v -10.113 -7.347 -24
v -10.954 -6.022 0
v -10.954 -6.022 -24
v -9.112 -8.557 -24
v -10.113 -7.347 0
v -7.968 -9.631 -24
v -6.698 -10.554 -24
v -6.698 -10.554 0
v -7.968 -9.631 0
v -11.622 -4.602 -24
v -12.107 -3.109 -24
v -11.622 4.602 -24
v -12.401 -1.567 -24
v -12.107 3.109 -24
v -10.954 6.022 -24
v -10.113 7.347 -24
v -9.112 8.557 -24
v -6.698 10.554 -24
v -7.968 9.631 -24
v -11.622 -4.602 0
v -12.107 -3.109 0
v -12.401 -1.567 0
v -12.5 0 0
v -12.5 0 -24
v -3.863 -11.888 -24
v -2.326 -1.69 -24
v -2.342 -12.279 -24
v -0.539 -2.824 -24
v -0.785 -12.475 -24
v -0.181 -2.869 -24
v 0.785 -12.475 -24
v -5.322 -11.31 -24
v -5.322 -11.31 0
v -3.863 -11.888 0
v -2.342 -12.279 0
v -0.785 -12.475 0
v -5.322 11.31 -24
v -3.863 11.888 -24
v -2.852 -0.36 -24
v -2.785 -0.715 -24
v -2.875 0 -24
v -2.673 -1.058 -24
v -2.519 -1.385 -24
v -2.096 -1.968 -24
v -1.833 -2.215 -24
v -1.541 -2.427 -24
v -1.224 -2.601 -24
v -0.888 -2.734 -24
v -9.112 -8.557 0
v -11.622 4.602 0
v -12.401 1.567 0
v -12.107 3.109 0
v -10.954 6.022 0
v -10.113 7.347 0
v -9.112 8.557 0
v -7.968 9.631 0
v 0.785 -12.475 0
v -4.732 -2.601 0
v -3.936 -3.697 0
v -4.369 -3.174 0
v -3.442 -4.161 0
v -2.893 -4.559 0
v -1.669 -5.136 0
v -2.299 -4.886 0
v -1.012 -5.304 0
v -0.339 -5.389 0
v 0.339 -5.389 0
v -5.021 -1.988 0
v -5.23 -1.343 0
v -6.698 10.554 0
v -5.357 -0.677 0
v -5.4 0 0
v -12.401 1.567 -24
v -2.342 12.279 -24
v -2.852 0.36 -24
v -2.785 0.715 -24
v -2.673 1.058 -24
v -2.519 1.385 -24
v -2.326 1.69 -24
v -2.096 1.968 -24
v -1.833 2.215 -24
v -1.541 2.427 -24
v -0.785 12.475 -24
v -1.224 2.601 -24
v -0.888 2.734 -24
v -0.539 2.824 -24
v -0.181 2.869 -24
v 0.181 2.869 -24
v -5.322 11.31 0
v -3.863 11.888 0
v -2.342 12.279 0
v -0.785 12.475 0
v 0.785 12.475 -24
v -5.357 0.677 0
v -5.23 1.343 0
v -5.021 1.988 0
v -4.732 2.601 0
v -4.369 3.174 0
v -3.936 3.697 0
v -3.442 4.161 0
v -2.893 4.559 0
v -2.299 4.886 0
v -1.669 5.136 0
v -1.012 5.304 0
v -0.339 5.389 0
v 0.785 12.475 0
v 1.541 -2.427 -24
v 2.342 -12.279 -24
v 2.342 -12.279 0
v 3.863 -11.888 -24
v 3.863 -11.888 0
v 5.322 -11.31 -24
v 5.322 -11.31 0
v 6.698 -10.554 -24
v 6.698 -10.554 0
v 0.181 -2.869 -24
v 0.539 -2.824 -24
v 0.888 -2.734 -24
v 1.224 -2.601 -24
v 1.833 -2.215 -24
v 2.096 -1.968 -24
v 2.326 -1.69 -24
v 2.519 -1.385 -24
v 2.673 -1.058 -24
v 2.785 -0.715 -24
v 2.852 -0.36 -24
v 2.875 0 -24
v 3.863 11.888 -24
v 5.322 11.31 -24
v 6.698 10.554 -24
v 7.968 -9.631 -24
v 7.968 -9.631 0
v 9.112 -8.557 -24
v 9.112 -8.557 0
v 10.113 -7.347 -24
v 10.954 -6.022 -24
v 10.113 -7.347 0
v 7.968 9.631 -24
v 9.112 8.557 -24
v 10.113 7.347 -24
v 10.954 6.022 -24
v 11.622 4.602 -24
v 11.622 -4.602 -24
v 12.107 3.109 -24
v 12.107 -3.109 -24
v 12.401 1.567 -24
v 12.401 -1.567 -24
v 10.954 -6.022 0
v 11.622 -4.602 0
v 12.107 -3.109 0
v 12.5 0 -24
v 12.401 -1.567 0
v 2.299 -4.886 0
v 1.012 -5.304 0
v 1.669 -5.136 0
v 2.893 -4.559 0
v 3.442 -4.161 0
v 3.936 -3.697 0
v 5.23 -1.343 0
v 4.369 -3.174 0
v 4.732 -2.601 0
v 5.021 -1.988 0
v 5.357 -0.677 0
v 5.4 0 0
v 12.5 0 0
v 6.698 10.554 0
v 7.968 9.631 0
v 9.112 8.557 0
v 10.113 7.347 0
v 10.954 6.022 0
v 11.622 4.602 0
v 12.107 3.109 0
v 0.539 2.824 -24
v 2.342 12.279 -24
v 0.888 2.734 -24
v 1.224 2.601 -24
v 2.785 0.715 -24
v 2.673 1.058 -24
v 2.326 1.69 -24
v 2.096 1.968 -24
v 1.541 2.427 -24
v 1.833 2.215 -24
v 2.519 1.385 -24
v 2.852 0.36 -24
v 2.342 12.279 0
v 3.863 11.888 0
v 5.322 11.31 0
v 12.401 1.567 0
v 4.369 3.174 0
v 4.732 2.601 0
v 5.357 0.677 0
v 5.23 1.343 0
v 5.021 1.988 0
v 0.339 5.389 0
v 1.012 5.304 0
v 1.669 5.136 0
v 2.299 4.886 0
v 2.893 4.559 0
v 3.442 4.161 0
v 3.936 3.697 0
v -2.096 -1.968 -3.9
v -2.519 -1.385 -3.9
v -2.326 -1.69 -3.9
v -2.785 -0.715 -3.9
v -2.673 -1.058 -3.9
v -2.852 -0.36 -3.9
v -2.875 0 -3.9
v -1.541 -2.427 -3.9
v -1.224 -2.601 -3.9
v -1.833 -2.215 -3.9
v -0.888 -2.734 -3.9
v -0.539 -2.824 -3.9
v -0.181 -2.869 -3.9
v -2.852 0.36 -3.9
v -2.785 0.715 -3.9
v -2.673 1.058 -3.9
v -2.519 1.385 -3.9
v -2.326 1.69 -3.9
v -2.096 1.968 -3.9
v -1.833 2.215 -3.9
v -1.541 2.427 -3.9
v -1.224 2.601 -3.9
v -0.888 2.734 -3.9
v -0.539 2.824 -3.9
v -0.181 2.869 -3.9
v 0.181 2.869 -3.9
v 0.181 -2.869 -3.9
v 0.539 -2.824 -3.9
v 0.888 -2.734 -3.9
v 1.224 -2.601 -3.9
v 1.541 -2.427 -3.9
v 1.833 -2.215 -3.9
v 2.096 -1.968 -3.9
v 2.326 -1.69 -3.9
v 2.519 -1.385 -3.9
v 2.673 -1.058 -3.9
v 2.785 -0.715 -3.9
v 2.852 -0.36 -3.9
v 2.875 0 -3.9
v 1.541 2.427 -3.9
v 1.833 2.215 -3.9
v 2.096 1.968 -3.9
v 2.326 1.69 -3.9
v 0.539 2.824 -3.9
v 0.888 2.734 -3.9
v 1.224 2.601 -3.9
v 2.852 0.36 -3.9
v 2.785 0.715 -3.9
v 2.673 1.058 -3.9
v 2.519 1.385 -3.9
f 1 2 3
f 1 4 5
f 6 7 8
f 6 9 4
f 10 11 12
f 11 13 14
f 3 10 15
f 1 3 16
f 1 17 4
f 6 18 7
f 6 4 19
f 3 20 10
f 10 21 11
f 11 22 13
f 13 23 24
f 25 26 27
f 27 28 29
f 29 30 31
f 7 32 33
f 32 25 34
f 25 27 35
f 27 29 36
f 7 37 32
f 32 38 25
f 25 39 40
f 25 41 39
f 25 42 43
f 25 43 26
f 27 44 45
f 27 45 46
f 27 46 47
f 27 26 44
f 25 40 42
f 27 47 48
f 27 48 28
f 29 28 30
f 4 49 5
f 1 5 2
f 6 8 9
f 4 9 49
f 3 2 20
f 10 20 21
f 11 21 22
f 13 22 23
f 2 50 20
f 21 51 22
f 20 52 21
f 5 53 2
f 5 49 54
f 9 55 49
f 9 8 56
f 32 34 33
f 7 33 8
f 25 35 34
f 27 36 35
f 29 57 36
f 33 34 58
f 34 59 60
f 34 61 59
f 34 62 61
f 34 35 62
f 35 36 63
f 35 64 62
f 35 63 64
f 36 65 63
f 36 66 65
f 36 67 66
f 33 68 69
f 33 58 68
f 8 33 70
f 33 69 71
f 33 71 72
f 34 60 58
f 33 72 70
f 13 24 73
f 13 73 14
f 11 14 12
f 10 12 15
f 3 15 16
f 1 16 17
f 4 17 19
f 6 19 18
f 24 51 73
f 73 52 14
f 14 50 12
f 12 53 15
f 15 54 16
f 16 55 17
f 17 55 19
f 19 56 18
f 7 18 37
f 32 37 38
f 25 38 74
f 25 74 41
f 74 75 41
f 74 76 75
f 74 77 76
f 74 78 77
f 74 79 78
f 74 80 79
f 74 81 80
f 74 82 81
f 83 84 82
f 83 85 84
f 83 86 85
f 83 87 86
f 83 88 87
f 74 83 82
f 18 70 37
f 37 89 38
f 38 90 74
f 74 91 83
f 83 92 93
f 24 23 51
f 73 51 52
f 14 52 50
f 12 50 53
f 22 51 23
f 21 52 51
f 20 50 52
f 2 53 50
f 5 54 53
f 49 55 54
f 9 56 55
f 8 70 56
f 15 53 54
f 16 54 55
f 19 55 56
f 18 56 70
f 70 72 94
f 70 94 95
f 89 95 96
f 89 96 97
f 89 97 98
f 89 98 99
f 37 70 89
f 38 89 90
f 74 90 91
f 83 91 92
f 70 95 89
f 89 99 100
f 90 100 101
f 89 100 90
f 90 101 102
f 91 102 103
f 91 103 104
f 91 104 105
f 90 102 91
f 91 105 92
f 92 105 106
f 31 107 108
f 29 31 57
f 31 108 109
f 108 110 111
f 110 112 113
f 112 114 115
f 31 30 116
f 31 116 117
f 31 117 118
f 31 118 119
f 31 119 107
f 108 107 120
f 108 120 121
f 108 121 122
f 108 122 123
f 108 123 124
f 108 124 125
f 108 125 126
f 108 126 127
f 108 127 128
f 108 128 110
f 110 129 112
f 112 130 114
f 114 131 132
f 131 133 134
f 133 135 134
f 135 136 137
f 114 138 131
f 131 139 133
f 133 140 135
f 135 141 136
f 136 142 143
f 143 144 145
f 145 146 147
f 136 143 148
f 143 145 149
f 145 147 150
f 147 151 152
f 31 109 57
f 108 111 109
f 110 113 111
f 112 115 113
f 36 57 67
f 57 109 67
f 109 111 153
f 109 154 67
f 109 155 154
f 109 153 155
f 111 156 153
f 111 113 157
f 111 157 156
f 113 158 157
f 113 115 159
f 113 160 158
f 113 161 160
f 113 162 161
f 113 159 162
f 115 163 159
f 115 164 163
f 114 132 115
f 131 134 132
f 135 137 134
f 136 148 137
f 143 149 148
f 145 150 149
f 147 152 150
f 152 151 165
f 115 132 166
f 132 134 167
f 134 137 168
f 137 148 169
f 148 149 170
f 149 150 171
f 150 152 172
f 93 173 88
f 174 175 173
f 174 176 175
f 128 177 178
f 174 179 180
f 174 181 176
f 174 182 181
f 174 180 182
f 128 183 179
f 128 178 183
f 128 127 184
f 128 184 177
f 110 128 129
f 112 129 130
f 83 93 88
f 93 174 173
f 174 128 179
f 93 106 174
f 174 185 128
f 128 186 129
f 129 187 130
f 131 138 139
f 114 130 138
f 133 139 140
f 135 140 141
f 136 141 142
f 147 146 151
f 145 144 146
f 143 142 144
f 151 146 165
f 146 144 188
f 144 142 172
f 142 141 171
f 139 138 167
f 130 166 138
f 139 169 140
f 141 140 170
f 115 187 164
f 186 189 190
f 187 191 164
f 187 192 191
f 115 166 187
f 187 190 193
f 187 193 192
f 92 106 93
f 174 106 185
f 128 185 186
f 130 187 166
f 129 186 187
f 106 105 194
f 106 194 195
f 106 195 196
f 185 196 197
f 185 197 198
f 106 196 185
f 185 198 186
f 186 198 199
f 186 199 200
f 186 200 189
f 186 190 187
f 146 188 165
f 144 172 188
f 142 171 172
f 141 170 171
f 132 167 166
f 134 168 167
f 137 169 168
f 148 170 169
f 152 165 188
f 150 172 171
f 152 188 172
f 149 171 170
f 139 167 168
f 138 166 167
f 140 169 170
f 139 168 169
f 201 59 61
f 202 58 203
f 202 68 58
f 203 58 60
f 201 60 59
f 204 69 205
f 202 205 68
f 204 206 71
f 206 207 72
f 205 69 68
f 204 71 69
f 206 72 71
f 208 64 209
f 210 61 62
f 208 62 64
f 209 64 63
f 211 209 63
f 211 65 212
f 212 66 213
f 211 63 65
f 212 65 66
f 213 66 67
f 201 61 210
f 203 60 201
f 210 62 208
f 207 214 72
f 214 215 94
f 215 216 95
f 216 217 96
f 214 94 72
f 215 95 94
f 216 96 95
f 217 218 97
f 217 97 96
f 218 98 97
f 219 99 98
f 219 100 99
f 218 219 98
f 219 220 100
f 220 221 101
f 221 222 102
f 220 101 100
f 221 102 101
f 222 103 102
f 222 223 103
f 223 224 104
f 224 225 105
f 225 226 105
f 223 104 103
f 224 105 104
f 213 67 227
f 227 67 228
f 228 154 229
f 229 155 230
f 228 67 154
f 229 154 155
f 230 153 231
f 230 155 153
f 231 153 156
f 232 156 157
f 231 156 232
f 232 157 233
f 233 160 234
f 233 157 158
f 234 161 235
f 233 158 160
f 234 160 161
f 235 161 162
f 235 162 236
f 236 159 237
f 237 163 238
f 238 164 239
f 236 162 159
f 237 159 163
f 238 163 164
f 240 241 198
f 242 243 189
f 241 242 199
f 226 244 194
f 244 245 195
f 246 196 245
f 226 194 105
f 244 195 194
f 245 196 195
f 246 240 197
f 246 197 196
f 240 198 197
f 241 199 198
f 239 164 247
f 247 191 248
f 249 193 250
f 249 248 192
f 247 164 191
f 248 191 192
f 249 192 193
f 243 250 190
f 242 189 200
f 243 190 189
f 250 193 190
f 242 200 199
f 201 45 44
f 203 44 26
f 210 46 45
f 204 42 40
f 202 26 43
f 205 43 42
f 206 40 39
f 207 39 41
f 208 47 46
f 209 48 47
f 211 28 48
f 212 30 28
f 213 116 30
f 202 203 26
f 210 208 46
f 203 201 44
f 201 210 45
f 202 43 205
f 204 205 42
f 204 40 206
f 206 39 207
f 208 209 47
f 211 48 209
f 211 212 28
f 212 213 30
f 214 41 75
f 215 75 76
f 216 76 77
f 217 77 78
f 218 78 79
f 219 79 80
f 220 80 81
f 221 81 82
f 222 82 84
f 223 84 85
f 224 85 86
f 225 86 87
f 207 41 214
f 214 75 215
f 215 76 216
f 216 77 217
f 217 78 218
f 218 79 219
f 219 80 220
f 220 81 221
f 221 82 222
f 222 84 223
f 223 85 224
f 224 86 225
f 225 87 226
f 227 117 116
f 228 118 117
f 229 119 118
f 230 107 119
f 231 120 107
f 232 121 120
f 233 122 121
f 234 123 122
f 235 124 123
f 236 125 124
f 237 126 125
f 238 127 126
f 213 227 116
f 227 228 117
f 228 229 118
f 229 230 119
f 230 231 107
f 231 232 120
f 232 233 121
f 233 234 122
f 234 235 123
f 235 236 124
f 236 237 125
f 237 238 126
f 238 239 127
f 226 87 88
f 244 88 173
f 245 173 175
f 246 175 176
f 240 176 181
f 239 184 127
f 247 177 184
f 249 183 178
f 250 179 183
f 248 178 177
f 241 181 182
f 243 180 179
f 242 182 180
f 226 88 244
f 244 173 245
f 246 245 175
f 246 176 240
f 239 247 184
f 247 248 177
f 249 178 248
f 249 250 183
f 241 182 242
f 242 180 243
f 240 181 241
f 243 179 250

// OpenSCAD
$fn = 50;

difference() {
	union() {
		translate(v = [0, 0, -24.0]) {
			cylinder(h = 24, r = 12.5);
		}
	}
	union() {
		translate(v = [0, 0, 0]) {
			rotate(a = [0, 0, 0]) {
				difference() {
					union() {
						translate(v = [0, 0, -27.0]) {
							cylinder(h = 27, r = 2.6);
						}
						translate(v = [0, 0, -3.9]) {
							cylinder(h = 3.9, r1 = 2.875, r2 = 5.4);
						}
						translate(v = [0, 0, -27.0]) {
							cylinder(h = 27, r = 2.875);
						}
						translate(v = [0, 0, -27.0]) {
							cylinder(h = 27, r = 2.6);
						}
					}
					union();
				}
			}
		}
	}
}
